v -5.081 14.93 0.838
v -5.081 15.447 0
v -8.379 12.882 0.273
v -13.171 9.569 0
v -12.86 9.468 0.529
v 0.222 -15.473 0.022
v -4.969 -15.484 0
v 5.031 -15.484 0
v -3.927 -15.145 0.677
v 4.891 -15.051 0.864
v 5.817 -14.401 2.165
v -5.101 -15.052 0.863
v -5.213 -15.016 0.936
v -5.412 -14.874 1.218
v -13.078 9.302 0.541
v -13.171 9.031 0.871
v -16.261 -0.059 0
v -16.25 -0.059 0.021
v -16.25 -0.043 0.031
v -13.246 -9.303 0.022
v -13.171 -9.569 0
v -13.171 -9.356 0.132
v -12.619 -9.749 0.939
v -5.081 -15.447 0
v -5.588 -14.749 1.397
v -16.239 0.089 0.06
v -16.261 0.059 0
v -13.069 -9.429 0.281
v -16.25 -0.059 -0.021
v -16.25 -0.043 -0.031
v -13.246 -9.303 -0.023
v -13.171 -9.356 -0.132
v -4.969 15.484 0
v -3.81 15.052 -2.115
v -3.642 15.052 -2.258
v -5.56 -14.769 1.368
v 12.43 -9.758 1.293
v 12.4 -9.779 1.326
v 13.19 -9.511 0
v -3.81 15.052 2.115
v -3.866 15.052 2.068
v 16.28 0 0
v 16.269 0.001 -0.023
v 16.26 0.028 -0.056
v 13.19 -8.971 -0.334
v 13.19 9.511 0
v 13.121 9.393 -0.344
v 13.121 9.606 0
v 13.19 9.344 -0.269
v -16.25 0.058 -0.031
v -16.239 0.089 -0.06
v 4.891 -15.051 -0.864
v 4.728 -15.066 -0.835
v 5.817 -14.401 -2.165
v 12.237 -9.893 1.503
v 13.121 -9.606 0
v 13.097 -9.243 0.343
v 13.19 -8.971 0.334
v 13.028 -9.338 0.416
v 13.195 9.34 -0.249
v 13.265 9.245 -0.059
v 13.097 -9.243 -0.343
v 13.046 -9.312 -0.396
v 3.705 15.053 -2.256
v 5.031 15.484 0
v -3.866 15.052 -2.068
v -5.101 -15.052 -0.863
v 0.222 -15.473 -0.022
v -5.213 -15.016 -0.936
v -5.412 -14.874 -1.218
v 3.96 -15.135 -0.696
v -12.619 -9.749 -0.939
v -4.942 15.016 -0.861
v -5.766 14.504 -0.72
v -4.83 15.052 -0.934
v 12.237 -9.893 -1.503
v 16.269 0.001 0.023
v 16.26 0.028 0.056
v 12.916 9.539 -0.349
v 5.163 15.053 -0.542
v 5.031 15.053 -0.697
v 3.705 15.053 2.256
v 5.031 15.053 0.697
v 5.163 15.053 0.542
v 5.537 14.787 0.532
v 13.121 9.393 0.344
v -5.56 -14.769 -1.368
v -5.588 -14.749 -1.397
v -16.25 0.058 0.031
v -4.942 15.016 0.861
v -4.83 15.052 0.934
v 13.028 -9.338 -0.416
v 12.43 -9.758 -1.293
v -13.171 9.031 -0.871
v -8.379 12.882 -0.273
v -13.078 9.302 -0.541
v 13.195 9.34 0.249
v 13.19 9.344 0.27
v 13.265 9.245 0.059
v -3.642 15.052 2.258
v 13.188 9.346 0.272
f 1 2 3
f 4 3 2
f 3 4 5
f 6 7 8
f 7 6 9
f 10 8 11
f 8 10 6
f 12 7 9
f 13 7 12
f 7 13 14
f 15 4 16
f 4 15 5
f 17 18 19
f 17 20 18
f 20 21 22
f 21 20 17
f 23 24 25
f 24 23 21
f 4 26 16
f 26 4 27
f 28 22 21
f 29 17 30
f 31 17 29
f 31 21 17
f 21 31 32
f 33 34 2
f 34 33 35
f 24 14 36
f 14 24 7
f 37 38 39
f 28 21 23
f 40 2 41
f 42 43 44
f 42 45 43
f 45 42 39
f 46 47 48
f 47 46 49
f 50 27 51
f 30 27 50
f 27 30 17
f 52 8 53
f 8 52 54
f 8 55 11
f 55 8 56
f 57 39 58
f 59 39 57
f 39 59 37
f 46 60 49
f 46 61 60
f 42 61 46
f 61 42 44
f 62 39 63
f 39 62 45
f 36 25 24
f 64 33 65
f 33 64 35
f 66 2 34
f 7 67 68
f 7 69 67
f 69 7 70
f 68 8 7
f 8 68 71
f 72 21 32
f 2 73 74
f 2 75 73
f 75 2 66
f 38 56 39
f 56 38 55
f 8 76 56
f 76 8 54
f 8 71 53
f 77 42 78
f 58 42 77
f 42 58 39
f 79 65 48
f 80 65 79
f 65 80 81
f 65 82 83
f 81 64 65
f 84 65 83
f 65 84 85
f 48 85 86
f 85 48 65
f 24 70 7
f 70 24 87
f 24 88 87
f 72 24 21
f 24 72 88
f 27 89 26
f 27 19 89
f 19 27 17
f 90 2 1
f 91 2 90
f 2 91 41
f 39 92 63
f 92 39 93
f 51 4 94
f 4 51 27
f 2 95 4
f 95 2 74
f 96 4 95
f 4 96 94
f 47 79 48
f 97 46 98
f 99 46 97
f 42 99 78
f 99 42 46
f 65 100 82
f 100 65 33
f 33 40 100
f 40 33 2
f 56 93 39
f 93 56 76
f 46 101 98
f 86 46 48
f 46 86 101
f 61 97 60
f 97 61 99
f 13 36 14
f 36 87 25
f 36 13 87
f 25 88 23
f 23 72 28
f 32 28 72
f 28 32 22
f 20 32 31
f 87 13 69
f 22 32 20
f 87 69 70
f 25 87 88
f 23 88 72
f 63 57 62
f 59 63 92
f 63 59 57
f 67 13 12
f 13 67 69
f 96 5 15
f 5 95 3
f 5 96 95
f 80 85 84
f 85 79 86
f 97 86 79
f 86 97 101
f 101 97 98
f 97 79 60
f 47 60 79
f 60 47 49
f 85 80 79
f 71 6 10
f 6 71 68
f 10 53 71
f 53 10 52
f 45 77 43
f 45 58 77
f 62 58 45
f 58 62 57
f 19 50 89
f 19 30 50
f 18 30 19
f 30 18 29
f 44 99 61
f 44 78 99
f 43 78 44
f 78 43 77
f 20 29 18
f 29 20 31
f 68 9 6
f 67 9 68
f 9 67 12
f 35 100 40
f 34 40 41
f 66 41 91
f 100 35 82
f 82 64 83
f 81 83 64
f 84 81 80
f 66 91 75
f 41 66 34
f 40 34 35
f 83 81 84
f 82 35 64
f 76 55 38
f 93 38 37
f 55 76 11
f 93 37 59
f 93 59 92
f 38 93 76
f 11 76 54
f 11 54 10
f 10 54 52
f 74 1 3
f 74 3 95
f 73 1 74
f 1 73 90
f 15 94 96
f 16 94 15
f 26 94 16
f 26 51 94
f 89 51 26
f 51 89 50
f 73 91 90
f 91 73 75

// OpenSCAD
// Auto-generated OpenSCAD file

    inner_points = 10*[[-0.5132325915335268, -1.4956773870023274, -0.34271512053890807], [0.5132015226290007, 1.4957694784624385, 0.34271512053890807], [-1.3164886558141748, -0.9244174678024033, -0.17406815225290823], [0.4860549449459691, -1.4956217926681488, -0.3804565612375623], [-0.4860860138504952, 1.4957138841282598, 0.3804565612375623], [1.3164575869096489, 0.9245095592625141, 0.17406815225290823], [-1.616896733010238, -4.390779222781e-05, 0.06106693383481107], [1.299680079223296, -0.924271919945941, -0.2728765267863734], [-1.299711148127822, 0.9243640114060518, 0.2728765267863734], [1.616865664105712, 0.0001359992523386863, -0.06106693383481107], [-0.556237595762048, -0.34523719270611647, -1.479672427436971], [-0.4552213282331215, -0.9925171560774508, 1.1940016601646186], [-0.04302053868078421, 1.1504862400262665, -1.1369573068980627], [0.05799572884814228, 0.5032062766549321, 1.5367167807035265], [0.443049940717448, -0.34518159837193774, -1.517413868135625], [0.5440662082463744, -0.992461561743272, 1.1562602194659646], [0.7602355255998638, 0.579226320826342, -1.3056042751840629], [0.8612517931287903, -0.06805364254499237, 1.3680698124175268], [-0.8566456729581111, 0.5791363673040587, -1.2445373413492518], [-0.7556294054291846, -0.06814359606727556, 1.4291367462523379], [-0.043371596438175015, -1.137724291379308, -1.1496229384598298], [0.019059890311353907, -1.5377653089795797, 0.5027985225178162], [0.7870310455255046, 1.282407060551355, -0.5950982249693593], [0.8494625322750335, 0.8823660429510828, 1.0573232360082867], [-1.3430672101137342, -0.21340632570331178, -0.8767464116734562], [-1.2806357233642052, -0.6134473433035833, 0.7756750493041897], [-0.8298501530324705, 1.2823171070290713, -0.5340312911345482], [-0.7674186662829414, 0.8822760894287998, 1.1183901698430978], [1.2731015249237372, -0.21326077784684974, -0.9755547862069215], [1.3355330116732662, -0.6133017954471214, 0.6768666747707244]];

    outer_points = 10*[[-1.6180339887093724, 0.0, -1.1451363168900623e-05], [1.6180339887093724, 0.0, 1.1451363168900623e-05], [-1.3090169943343848, -0.9510565162945183, -1.0363544707418131e-05], [-1.3090169943499435, 0.9510565162945183, -8.165150117381781e-06], [1.3090169943499435, -0.9510565162945183, 8.165150117381781e-06], [1.3090169943343848, 0.9510565162945183, 1.0363544707418131e-05], [-0.49999999997489053, -1.538841768586599, -5.317204411630996e-06], [-0.5000000000000652, 1.538841768586599, -1.7601272442682922e-06], [0.5000000000000652, -1.538841768586599, 1.7601272442682922e-06], [0.49999999997489053, 1.538841768586599, 5.317204411630996e-06], [-0.8090267354638724, -0.2628671468326607, 1.3763758909435393], [-0.8090072532411997, -0.2628639652861217, -1.3763879499280285], [0.8090072532455, -0.2628671468326607, 1.3763873423067081], [0.8090267354681727, -0.2628639652861217, -1.3763764985648597], [-0.5000097411044434, 0.6881893694618576, 1.3763791771565905], [-0.49999025888177073, 0.6881925510083967, -1.376384663714977], [0.4999902588705123, 0.6881893694618576, 1.3763862544882464], [0.500009741093185, 0.6881925510083967, -1.3763775863833212], [-9.741104378259176e-06, -0.8506523991247412, 1.376380937283835], [9.741118294443999e-06, -0.8506492175782021, -1.3763829035877326], [-1.3090230146835373, 0.42532442102378687, 0.8506420355587297], [-1.3090109740077491, 0.4253263873276848, -0.8506595811016057], [1.309010974000791, 0.42532442102378687, 0.8506605642535546], [1.309023014676579, 0.4253263873276848, -0.8506410524067808], [-0.809023014683472, -1.1135173475628122, 0.850643795685974], [-0.8090109740076838, -1.1135153812589142, -0.8506578209743614], [0.8090109740259004, -1.1135173475628122, 0.8506552470491429], [0.8090230147016886, -1.1135153812589142, -0.8506463696111926], [-6.020349152492207e-06, 1.3763809373183054, 0.8506523991034373], [6.020326635632171e-06, 1.3763829036222033, -0.8506492175568982]];

    // Convex hull for inner set (I)
    module inner_hull() {
        hull() {
            for (p = inner_points) {
                translate(p) sphere(r=0.1);
            }
        }
    }

    // Convex hull for outer set (O) minus inner hull (O \ I)
    module outer_minus_inner() {
        difference() {
            hull() {
                for (p = outer_points) {
                    translate(p) sphere(r=0.1);
                }
            }
            inner_hull(); // Subtract inner hull
        }
    }

    // Convex hull for outer set (O) minus all translated inner hulls
    module outer_minus_AllTranslationInner() {
        difference() {
            hull() {
                for (p = outer_points) {
                    translate(p) sphere(r=0.1);
                }
            }
            hull() {
                translate([0,0,50]) inner_hull();
                translate([0,0,-50]) inner_hull();
            }; // Subtract translated inner hulls
        }
    }

    // Difference between outer_minus_inner and outer_minus_AllTranslationInner
    module outer_minus_inner_diff() {
        difference() {
            // Outer minus inner
            difference() {
                hull() {
                    for (p = outer_points) {
                        translate(p) sphere(r=0.1);
                    }
                }
                inner_hull();
            }

            // Subtract Outer minus AllTranslationInner
            difference() {
                hull() {
                    for (p = outer_points) {
                        translate(p) sphere(r=0.1);
                    }
                }
                hull() {
                    translate([0,0,50]) inner_hull();
                    translate([0,0,-50]) inner_hull();
                };
            }
        }
    }

    // Rendering all with colors applied
    color([0, 1, 0, 1]) outer_minus_AllTranslationInner(); // Opaque green
    
